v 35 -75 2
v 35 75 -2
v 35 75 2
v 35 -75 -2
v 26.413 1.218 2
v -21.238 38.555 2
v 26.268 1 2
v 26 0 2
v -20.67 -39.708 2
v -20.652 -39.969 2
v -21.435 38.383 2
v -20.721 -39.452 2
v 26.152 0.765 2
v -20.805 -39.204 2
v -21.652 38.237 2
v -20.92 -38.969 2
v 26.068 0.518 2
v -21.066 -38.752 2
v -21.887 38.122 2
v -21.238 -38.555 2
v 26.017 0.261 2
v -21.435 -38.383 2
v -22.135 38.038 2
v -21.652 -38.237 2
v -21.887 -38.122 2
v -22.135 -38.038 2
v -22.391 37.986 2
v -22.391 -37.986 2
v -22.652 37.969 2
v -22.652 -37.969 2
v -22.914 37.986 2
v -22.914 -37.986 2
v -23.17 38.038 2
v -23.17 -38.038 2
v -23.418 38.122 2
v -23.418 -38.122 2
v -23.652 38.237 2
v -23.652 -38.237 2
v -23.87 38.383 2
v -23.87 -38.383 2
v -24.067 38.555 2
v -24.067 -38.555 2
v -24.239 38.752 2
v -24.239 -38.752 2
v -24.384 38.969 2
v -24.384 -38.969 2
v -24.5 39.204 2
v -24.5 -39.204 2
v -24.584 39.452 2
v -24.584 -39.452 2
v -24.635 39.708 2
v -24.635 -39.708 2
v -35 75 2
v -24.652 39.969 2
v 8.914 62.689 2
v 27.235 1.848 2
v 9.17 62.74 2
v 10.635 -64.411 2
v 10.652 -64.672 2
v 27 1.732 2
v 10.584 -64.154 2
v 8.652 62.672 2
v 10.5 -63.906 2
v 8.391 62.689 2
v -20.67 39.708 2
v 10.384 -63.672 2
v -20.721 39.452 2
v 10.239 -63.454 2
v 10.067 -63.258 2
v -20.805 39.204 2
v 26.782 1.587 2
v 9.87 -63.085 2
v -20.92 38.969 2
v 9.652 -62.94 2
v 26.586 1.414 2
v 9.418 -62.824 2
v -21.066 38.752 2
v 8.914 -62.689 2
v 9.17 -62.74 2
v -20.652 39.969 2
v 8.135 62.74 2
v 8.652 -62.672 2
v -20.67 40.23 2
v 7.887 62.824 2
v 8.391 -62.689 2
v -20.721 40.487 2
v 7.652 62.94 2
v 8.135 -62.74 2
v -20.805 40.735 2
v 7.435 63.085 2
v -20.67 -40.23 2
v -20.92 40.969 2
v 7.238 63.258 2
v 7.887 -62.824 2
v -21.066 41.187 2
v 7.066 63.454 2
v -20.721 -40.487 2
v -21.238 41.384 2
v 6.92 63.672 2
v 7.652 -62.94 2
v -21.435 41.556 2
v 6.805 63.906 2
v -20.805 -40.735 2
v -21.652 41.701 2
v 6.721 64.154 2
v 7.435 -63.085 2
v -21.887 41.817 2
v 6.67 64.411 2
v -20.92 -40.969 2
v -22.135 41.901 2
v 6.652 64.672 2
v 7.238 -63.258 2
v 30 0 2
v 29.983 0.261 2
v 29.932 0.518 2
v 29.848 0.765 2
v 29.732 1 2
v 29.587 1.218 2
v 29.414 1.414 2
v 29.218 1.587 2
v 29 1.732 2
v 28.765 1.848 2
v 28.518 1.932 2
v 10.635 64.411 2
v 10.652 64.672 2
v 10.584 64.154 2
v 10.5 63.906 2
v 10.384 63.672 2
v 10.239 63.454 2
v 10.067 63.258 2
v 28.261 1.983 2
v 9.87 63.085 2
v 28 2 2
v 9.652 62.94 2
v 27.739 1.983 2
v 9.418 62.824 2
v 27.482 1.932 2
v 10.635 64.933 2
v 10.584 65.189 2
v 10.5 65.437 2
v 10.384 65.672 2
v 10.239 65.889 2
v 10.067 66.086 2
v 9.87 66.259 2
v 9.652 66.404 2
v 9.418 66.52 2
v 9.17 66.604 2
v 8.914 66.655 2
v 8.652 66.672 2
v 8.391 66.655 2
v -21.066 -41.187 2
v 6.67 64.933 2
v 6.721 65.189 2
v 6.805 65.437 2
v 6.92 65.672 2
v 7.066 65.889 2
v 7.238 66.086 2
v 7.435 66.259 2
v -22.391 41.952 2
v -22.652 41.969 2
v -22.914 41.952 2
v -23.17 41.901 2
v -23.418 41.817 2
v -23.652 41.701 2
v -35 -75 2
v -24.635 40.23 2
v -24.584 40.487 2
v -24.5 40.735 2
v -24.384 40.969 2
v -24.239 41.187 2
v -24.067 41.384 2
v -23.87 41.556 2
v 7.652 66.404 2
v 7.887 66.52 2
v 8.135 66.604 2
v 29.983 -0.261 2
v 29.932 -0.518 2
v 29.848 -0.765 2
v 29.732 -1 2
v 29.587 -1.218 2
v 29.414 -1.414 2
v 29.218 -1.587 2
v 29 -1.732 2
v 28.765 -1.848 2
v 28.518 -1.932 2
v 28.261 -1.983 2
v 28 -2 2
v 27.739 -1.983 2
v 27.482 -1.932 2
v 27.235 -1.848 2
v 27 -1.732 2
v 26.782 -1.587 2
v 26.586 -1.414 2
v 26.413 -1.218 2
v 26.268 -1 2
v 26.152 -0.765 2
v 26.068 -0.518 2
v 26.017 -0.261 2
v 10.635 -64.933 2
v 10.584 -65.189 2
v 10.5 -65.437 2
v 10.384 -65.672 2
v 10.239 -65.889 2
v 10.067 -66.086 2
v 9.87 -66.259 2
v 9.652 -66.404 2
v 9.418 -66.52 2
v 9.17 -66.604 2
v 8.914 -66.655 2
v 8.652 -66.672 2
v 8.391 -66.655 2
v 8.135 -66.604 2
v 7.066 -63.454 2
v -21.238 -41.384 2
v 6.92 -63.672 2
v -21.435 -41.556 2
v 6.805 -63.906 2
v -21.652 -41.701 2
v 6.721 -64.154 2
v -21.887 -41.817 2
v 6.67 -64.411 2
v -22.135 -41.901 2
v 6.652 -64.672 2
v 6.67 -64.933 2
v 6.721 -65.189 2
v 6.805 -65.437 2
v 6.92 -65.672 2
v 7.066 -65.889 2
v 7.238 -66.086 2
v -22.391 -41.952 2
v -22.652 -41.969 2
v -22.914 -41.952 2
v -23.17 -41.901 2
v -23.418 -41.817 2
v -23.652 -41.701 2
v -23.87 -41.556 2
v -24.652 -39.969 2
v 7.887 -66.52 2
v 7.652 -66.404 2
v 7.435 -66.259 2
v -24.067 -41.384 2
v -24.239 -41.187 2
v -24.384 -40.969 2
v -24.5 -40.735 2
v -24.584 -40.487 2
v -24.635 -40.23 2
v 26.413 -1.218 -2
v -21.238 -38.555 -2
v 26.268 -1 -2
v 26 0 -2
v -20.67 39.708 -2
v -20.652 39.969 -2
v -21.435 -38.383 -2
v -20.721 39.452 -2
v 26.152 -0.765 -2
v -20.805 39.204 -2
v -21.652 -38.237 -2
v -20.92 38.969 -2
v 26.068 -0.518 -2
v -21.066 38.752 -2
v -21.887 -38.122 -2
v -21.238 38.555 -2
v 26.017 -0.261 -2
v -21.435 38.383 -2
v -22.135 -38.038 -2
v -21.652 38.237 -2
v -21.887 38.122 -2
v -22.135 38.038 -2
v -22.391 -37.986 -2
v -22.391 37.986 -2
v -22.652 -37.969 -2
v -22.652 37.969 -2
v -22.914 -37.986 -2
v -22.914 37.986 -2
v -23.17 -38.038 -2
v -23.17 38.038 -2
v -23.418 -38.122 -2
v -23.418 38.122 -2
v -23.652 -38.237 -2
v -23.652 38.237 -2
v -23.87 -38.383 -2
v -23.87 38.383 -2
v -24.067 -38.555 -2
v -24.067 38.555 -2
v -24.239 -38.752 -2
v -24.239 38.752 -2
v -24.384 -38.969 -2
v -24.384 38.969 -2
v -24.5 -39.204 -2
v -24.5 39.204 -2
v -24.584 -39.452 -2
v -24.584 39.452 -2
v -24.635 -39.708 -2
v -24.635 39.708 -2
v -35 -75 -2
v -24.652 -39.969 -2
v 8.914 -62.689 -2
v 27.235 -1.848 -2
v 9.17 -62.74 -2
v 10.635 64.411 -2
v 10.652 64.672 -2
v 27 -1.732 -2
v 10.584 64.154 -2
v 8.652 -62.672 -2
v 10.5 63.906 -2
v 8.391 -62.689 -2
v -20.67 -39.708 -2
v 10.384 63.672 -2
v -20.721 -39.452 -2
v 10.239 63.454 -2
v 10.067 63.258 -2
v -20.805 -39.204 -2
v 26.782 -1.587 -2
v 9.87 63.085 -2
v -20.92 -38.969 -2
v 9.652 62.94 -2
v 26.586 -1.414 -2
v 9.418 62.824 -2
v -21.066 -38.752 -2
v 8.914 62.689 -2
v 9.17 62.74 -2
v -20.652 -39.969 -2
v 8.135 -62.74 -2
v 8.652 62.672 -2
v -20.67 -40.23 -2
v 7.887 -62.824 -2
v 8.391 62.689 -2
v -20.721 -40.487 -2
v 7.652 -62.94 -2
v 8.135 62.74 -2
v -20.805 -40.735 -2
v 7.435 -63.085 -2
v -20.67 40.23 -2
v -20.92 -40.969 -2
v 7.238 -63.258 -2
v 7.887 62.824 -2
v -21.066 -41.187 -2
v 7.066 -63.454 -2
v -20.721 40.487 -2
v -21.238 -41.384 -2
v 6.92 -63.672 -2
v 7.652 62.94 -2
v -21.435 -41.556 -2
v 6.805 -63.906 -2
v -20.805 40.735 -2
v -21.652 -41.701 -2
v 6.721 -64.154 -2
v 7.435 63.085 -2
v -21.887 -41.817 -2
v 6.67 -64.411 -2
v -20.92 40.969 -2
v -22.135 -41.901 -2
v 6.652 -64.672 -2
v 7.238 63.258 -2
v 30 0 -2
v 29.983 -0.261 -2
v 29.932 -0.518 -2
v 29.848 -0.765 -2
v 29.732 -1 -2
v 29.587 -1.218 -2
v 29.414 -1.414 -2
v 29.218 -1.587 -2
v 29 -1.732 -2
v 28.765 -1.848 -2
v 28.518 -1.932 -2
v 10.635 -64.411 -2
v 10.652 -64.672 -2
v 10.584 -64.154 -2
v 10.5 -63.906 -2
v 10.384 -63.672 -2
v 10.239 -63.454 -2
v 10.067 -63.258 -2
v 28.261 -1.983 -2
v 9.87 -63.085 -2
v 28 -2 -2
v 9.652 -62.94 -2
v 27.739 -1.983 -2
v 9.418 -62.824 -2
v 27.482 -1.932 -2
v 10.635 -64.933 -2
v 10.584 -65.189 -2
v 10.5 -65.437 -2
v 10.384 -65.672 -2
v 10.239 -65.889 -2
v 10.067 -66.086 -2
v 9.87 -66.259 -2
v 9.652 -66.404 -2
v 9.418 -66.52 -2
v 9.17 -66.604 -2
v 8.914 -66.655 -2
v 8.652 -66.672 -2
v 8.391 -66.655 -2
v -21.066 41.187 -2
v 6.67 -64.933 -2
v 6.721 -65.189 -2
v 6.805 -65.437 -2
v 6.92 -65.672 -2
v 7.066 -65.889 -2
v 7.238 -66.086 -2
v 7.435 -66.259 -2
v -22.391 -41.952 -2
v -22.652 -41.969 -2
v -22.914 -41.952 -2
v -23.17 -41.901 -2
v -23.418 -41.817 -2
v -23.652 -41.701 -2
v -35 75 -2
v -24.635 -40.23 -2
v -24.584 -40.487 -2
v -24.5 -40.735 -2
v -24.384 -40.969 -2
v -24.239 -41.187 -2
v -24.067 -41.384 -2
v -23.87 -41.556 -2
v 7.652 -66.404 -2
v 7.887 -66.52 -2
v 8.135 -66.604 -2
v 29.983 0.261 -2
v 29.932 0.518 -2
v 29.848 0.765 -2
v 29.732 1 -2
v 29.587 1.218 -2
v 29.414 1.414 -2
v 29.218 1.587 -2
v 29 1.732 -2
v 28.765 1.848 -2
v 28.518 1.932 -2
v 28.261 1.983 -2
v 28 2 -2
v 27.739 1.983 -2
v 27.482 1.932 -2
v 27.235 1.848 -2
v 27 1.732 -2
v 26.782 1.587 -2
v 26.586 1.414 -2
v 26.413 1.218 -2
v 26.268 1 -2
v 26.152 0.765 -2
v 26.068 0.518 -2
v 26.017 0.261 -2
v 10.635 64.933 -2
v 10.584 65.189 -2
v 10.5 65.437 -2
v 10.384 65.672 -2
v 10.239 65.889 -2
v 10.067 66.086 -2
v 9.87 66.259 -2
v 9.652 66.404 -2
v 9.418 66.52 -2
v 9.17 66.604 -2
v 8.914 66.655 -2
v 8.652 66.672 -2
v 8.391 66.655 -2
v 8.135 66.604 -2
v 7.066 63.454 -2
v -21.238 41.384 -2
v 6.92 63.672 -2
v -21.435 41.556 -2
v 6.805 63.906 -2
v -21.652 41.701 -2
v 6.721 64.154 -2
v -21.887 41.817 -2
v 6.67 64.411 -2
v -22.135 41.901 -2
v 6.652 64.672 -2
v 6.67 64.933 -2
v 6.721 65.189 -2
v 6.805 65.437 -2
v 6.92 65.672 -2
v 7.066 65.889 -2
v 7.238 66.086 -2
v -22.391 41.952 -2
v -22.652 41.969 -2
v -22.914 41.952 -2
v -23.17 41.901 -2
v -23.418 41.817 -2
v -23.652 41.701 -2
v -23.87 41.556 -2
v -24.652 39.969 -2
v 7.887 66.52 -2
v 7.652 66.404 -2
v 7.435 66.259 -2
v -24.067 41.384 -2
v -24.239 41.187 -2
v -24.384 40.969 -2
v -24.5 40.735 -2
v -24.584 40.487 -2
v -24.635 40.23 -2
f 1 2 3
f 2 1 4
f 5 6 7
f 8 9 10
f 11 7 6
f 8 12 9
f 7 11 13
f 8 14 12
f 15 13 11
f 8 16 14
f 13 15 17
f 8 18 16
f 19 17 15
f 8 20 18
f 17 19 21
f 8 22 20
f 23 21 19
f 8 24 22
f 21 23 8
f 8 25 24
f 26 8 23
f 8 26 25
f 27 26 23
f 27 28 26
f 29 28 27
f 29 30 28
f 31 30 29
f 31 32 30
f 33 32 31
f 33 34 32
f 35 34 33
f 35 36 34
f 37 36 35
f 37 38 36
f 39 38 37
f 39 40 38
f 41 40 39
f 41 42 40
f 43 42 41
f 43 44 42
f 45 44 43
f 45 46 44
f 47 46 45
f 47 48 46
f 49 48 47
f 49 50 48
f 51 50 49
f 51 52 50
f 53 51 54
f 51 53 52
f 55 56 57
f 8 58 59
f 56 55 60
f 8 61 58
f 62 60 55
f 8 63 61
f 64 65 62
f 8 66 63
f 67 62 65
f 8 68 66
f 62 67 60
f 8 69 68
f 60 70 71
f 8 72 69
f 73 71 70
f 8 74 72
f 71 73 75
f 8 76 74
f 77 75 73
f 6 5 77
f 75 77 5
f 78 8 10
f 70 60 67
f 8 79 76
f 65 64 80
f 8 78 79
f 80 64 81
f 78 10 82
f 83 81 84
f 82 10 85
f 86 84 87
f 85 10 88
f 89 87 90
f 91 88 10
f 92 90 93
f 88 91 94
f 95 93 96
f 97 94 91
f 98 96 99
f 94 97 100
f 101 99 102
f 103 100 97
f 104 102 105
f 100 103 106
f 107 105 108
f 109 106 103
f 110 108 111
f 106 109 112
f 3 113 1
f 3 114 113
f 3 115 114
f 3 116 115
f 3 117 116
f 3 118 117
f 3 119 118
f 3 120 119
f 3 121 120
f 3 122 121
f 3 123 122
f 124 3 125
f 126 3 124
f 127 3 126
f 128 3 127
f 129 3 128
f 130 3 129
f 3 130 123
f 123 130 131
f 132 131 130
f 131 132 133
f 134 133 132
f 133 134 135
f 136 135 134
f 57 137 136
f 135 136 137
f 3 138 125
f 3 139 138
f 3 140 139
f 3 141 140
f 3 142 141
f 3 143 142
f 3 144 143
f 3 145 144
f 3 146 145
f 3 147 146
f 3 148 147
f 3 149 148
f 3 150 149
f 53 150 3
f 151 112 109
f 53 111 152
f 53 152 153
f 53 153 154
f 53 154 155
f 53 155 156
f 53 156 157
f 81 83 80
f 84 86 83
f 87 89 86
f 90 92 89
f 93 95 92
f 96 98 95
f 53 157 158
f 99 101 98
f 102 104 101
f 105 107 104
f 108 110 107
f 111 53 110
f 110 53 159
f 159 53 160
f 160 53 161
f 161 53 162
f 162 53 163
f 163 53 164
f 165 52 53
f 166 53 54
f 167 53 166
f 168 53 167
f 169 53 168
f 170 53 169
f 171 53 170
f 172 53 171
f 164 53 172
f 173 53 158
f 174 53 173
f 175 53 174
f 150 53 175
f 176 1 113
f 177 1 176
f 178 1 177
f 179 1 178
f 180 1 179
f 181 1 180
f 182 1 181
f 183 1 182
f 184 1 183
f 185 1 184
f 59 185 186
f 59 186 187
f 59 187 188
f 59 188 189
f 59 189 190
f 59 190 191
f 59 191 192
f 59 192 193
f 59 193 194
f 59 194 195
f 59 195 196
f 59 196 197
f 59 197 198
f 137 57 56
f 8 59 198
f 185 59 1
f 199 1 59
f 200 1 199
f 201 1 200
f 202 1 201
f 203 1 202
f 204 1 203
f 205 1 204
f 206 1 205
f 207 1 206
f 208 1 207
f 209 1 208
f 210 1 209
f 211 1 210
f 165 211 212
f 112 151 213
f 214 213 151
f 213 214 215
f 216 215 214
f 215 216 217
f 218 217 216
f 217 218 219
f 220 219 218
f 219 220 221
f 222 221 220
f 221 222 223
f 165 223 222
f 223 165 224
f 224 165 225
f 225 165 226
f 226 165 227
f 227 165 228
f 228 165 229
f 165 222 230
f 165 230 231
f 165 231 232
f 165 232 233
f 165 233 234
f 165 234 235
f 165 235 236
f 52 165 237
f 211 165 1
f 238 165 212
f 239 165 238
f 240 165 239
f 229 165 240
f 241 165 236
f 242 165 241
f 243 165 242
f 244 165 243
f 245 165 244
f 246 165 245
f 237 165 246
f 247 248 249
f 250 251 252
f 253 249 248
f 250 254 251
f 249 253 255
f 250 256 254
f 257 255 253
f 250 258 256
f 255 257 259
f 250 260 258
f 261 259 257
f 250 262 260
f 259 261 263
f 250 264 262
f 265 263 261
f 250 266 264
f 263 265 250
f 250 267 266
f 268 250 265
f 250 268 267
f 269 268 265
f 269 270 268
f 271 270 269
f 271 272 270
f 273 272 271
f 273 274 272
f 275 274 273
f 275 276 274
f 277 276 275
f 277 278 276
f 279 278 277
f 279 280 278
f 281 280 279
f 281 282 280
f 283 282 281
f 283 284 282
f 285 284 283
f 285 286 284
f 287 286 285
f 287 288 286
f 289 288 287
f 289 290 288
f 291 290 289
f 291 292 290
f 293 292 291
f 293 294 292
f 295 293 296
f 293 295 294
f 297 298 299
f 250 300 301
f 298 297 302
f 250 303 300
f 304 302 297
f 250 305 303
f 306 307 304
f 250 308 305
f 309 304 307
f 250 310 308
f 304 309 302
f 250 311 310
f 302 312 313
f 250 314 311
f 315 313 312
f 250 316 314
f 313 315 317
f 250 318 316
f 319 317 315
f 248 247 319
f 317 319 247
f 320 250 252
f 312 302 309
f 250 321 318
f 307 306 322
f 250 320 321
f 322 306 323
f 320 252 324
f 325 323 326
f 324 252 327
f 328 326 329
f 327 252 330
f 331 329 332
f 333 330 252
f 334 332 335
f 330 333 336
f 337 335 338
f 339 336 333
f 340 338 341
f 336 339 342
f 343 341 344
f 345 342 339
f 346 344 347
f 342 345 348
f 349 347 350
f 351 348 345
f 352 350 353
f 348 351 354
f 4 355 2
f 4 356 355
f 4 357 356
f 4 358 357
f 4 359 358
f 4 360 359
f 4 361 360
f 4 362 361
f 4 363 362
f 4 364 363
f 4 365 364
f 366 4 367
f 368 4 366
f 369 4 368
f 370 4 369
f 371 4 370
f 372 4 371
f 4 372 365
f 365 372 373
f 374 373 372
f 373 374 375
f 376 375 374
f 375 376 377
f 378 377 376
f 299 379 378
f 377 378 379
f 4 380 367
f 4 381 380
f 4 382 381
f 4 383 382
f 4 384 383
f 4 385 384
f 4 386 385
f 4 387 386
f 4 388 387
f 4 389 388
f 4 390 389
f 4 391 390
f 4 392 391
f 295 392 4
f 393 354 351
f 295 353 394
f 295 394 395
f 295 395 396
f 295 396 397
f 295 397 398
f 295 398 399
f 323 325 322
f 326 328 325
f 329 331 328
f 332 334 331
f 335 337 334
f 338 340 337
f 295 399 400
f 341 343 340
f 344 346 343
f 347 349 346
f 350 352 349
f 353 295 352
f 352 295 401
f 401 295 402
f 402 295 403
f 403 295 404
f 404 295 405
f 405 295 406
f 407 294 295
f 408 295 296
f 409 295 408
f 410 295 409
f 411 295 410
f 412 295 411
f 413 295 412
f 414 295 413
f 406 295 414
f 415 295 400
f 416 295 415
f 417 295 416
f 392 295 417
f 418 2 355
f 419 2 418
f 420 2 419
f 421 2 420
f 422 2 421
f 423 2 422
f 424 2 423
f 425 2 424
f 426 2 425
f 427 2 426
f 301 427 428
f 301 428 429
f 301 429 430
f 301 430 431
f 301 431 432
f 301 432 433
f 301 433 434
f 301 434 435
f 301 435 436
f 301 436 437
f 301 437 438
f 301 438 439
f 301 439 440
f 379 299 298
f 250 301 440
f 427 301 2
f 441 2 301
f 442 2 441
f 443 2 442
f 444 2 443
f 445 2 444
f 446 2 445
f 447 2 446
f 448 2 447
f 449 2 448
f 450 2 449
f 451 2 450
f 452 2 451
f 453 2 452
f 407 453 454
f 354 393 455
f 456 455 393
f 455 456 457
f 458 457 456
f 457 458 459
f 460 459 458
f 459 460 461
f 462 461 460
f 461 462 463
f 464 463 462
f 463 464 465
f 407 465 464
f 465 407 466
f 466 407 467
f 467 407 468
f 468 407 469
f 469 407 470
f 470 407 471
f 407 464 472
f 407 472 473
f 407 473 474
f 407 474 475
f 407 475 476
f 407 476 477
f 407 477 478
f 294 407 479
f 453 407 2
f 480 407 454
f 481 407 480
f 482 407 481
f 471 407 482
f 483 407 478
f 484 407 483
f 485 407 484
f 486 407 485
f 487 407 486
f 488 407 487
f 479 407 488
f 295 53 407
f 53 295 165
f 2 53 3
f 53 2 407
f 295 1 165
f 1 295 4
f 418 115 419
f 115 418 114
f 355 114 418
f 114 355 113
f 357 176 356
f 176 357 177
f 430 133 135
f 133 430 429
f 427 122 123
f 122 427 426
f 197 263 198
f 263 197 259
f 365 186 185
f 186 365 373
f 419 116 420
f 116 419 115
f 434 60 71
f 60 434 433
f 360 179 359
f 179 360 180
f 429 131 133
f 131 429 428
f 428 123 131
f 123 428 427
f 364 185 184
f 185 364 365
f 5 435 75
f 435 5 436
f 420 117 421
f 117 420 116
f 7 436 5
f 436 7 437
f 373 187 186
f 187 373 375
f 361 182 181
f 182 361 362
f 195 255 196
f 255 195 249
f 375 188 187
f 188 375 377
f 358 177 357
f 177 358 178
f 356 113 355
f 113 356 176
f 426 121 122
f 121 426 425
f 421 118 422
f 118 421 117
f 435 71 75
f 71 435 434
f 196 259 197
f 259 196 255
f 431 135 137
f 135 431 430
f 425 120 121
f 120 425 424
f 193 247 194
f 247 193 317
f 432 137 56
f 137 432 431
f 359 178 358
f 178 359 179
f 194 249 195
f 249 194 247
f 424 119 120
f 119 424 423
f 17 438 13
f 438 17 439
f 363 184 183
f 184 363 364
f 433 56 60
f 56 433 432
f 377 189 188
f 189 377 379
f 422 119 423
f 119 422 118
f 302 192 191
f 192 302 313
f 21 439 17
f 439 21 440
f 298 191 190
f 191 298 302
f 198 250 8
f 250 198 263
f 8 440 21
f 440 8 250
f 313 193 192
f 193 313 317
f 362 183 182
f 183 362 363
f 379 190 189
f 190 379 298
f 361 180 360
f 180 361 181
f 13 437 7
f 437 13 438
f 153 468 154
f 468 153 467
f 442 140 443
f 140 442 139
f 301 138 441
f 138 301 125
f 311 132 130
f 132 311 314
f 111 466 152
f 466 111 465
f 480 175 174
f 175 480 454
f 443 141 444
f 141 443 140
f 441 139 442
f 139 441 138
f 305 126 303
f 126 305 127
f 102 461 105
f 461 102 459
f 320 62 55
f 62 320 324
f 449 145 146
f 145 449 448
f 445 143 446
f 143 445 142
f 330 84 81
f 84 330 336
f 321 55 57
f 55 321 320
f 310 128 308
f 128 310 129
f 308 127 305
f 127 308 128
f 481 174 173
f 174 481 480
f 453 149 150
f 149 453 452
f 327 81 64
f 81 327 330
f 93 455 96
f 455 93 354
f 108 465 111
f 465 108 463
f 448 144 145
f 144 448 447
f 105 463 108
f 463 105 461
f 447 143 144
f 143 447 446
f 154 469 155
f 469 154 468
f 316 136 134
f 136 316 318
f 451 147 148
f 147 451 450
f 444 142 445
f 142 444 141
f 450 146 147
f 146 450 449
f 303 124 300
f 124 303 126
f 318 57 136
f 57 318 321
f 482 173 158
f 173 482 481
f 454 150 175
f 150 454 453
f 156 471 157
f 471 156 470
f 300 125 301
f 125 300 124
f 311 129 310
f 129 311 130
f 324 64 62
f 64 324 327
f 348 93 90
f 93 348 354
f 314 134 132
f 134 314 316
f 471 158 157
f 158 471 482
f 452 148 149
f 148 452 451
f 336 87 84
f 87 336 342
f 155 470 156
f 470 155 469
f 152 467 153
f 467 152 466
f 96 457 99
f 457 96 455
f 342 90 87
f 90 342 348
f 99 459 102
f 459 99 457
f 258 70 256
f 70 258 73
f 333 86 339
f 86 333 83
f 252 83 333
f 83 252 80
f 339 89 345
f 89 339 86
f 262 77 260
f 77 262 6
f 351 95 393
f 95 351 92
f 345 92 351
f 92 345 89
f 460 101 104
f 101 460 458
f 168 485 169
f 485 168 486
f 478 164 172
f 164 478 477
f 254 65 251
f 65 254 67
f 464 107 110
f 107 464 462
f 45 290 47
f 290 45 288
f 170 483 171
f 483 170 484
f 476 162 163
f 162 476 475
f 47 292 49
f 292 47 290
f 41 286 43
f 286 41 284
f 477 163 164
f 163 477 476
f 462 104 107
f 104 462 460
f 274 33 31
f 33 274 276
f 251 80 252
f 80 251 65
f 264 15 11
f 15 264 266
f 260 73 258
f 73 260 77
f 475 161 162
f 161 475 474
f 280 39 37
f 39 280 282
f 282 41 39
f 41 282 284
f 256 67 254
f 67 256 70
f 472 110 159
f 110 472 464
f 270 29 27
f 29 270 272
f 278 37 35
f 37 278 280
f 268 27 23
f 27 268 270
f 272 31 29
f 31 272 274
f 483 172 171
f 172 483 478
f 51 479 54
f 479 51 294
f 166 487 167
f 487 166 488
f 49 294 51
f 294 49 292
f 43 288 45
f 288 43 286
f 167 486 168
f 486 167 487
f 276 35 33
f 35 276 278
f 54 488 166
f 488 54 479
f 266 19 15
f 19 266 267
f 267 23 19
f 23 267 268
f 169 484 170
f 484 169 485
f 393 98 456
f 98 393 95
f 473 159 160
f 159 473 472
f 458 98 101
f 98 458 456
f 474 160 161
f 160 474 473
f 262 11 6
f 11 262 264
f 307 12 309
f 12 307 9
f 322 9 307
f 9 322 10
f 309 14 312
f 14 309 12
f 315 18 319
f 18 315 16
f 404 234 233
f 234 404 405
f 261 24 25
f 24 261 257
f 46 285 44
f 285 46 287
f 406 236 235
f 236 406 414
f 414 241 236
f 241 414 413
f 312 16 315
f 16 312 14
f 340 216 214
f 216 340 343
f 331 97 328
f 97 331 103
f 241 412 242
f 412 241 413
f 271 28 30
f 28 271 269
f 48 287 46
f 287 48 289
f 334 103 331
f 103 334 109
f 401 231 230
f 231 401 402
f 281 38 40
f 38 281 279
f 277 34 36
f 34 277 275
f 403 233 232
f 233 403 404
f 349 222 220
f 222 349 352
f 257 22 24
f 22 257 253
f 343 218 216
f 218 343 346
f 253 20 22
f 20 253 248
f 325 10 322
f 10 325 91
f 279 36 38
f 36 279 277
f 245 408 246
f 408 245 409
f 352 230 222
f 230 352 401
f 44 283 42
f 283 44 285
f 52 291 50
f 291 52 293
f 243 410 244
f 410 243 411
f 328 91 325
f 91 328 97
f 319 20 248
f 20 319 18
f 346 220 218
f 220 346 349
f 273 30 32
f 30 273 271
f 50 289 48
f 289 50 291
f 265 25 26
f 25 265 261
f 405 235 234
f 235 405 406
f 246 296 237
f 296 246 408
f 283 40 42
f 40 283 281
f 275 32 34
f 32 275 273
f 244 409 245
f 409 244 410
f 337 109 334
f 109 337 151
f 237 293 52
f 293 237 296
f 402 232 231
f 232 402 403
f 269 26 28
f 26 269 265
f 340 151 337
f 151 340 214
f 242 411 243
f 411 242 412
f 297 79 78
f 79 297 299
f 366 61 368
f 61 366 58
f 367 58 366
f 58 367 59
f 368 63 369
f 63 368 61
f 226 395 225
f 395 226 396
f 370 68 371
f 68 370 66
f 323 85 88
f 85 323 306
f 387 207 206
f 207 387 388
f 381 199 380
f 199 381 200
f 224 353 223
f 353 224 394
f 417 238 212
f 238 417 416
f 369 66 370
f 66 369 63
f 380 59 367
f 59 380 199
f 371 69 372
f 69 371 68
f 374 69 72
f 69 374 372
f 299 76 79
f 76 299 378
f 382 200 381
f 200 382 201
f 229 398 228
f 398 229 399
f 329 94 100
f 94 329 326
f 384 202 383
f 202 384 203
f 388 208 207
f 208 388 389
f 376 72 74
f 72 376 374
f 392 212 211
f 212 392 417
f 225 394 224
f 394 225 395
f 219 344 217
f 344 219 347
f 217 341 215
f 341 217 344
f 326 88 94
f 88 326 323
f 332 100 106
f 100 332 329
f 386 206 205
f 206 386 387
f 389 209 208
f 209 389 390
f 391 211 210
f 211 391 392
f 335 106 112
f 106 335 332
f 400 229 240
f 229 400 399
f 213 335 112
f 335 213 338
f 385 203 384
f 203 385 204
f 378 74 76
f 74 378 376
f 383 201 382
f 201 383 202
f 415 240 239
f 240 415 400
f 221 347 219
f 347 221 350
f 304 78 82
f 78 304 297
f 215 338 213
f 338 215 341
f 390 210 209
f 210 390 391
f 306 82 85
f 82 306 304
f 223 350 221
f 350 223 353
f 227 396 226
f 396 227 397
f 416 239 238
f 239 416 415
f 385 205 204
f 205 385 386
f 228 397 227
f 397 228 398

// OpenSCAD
// ========================================
// a 70 x 150 x 4 mm plate with five 4 mm holes
// NeuroCAD canonical IR; dimensions are millimetres
// ========================================
$fn = 48;

difference() {
  cube(size=[70, 150, 4], center=true);
  translate([28, 0, 0]) {
    cylinder(r=2, h=6, center=true);
  }
  translate([8.65247584249853, 64.6718431080704, 0]) {
    cylinder(r=2, h=6, center=true);
  }
  translate([-22.6524758424985, 39.9693971558882, 0]) {
    cylinder(r=2, h=6, center=true);
  }
  translate([-22.6524758424985, -39.9693971558882, 0]) {
    cylinder(r=2, h=6, center=true);
  }
  translate([8.65247584249852, -64.6718431080704, 0]) {
    cylinder(r=2, h=6, center=true);
  }
}
